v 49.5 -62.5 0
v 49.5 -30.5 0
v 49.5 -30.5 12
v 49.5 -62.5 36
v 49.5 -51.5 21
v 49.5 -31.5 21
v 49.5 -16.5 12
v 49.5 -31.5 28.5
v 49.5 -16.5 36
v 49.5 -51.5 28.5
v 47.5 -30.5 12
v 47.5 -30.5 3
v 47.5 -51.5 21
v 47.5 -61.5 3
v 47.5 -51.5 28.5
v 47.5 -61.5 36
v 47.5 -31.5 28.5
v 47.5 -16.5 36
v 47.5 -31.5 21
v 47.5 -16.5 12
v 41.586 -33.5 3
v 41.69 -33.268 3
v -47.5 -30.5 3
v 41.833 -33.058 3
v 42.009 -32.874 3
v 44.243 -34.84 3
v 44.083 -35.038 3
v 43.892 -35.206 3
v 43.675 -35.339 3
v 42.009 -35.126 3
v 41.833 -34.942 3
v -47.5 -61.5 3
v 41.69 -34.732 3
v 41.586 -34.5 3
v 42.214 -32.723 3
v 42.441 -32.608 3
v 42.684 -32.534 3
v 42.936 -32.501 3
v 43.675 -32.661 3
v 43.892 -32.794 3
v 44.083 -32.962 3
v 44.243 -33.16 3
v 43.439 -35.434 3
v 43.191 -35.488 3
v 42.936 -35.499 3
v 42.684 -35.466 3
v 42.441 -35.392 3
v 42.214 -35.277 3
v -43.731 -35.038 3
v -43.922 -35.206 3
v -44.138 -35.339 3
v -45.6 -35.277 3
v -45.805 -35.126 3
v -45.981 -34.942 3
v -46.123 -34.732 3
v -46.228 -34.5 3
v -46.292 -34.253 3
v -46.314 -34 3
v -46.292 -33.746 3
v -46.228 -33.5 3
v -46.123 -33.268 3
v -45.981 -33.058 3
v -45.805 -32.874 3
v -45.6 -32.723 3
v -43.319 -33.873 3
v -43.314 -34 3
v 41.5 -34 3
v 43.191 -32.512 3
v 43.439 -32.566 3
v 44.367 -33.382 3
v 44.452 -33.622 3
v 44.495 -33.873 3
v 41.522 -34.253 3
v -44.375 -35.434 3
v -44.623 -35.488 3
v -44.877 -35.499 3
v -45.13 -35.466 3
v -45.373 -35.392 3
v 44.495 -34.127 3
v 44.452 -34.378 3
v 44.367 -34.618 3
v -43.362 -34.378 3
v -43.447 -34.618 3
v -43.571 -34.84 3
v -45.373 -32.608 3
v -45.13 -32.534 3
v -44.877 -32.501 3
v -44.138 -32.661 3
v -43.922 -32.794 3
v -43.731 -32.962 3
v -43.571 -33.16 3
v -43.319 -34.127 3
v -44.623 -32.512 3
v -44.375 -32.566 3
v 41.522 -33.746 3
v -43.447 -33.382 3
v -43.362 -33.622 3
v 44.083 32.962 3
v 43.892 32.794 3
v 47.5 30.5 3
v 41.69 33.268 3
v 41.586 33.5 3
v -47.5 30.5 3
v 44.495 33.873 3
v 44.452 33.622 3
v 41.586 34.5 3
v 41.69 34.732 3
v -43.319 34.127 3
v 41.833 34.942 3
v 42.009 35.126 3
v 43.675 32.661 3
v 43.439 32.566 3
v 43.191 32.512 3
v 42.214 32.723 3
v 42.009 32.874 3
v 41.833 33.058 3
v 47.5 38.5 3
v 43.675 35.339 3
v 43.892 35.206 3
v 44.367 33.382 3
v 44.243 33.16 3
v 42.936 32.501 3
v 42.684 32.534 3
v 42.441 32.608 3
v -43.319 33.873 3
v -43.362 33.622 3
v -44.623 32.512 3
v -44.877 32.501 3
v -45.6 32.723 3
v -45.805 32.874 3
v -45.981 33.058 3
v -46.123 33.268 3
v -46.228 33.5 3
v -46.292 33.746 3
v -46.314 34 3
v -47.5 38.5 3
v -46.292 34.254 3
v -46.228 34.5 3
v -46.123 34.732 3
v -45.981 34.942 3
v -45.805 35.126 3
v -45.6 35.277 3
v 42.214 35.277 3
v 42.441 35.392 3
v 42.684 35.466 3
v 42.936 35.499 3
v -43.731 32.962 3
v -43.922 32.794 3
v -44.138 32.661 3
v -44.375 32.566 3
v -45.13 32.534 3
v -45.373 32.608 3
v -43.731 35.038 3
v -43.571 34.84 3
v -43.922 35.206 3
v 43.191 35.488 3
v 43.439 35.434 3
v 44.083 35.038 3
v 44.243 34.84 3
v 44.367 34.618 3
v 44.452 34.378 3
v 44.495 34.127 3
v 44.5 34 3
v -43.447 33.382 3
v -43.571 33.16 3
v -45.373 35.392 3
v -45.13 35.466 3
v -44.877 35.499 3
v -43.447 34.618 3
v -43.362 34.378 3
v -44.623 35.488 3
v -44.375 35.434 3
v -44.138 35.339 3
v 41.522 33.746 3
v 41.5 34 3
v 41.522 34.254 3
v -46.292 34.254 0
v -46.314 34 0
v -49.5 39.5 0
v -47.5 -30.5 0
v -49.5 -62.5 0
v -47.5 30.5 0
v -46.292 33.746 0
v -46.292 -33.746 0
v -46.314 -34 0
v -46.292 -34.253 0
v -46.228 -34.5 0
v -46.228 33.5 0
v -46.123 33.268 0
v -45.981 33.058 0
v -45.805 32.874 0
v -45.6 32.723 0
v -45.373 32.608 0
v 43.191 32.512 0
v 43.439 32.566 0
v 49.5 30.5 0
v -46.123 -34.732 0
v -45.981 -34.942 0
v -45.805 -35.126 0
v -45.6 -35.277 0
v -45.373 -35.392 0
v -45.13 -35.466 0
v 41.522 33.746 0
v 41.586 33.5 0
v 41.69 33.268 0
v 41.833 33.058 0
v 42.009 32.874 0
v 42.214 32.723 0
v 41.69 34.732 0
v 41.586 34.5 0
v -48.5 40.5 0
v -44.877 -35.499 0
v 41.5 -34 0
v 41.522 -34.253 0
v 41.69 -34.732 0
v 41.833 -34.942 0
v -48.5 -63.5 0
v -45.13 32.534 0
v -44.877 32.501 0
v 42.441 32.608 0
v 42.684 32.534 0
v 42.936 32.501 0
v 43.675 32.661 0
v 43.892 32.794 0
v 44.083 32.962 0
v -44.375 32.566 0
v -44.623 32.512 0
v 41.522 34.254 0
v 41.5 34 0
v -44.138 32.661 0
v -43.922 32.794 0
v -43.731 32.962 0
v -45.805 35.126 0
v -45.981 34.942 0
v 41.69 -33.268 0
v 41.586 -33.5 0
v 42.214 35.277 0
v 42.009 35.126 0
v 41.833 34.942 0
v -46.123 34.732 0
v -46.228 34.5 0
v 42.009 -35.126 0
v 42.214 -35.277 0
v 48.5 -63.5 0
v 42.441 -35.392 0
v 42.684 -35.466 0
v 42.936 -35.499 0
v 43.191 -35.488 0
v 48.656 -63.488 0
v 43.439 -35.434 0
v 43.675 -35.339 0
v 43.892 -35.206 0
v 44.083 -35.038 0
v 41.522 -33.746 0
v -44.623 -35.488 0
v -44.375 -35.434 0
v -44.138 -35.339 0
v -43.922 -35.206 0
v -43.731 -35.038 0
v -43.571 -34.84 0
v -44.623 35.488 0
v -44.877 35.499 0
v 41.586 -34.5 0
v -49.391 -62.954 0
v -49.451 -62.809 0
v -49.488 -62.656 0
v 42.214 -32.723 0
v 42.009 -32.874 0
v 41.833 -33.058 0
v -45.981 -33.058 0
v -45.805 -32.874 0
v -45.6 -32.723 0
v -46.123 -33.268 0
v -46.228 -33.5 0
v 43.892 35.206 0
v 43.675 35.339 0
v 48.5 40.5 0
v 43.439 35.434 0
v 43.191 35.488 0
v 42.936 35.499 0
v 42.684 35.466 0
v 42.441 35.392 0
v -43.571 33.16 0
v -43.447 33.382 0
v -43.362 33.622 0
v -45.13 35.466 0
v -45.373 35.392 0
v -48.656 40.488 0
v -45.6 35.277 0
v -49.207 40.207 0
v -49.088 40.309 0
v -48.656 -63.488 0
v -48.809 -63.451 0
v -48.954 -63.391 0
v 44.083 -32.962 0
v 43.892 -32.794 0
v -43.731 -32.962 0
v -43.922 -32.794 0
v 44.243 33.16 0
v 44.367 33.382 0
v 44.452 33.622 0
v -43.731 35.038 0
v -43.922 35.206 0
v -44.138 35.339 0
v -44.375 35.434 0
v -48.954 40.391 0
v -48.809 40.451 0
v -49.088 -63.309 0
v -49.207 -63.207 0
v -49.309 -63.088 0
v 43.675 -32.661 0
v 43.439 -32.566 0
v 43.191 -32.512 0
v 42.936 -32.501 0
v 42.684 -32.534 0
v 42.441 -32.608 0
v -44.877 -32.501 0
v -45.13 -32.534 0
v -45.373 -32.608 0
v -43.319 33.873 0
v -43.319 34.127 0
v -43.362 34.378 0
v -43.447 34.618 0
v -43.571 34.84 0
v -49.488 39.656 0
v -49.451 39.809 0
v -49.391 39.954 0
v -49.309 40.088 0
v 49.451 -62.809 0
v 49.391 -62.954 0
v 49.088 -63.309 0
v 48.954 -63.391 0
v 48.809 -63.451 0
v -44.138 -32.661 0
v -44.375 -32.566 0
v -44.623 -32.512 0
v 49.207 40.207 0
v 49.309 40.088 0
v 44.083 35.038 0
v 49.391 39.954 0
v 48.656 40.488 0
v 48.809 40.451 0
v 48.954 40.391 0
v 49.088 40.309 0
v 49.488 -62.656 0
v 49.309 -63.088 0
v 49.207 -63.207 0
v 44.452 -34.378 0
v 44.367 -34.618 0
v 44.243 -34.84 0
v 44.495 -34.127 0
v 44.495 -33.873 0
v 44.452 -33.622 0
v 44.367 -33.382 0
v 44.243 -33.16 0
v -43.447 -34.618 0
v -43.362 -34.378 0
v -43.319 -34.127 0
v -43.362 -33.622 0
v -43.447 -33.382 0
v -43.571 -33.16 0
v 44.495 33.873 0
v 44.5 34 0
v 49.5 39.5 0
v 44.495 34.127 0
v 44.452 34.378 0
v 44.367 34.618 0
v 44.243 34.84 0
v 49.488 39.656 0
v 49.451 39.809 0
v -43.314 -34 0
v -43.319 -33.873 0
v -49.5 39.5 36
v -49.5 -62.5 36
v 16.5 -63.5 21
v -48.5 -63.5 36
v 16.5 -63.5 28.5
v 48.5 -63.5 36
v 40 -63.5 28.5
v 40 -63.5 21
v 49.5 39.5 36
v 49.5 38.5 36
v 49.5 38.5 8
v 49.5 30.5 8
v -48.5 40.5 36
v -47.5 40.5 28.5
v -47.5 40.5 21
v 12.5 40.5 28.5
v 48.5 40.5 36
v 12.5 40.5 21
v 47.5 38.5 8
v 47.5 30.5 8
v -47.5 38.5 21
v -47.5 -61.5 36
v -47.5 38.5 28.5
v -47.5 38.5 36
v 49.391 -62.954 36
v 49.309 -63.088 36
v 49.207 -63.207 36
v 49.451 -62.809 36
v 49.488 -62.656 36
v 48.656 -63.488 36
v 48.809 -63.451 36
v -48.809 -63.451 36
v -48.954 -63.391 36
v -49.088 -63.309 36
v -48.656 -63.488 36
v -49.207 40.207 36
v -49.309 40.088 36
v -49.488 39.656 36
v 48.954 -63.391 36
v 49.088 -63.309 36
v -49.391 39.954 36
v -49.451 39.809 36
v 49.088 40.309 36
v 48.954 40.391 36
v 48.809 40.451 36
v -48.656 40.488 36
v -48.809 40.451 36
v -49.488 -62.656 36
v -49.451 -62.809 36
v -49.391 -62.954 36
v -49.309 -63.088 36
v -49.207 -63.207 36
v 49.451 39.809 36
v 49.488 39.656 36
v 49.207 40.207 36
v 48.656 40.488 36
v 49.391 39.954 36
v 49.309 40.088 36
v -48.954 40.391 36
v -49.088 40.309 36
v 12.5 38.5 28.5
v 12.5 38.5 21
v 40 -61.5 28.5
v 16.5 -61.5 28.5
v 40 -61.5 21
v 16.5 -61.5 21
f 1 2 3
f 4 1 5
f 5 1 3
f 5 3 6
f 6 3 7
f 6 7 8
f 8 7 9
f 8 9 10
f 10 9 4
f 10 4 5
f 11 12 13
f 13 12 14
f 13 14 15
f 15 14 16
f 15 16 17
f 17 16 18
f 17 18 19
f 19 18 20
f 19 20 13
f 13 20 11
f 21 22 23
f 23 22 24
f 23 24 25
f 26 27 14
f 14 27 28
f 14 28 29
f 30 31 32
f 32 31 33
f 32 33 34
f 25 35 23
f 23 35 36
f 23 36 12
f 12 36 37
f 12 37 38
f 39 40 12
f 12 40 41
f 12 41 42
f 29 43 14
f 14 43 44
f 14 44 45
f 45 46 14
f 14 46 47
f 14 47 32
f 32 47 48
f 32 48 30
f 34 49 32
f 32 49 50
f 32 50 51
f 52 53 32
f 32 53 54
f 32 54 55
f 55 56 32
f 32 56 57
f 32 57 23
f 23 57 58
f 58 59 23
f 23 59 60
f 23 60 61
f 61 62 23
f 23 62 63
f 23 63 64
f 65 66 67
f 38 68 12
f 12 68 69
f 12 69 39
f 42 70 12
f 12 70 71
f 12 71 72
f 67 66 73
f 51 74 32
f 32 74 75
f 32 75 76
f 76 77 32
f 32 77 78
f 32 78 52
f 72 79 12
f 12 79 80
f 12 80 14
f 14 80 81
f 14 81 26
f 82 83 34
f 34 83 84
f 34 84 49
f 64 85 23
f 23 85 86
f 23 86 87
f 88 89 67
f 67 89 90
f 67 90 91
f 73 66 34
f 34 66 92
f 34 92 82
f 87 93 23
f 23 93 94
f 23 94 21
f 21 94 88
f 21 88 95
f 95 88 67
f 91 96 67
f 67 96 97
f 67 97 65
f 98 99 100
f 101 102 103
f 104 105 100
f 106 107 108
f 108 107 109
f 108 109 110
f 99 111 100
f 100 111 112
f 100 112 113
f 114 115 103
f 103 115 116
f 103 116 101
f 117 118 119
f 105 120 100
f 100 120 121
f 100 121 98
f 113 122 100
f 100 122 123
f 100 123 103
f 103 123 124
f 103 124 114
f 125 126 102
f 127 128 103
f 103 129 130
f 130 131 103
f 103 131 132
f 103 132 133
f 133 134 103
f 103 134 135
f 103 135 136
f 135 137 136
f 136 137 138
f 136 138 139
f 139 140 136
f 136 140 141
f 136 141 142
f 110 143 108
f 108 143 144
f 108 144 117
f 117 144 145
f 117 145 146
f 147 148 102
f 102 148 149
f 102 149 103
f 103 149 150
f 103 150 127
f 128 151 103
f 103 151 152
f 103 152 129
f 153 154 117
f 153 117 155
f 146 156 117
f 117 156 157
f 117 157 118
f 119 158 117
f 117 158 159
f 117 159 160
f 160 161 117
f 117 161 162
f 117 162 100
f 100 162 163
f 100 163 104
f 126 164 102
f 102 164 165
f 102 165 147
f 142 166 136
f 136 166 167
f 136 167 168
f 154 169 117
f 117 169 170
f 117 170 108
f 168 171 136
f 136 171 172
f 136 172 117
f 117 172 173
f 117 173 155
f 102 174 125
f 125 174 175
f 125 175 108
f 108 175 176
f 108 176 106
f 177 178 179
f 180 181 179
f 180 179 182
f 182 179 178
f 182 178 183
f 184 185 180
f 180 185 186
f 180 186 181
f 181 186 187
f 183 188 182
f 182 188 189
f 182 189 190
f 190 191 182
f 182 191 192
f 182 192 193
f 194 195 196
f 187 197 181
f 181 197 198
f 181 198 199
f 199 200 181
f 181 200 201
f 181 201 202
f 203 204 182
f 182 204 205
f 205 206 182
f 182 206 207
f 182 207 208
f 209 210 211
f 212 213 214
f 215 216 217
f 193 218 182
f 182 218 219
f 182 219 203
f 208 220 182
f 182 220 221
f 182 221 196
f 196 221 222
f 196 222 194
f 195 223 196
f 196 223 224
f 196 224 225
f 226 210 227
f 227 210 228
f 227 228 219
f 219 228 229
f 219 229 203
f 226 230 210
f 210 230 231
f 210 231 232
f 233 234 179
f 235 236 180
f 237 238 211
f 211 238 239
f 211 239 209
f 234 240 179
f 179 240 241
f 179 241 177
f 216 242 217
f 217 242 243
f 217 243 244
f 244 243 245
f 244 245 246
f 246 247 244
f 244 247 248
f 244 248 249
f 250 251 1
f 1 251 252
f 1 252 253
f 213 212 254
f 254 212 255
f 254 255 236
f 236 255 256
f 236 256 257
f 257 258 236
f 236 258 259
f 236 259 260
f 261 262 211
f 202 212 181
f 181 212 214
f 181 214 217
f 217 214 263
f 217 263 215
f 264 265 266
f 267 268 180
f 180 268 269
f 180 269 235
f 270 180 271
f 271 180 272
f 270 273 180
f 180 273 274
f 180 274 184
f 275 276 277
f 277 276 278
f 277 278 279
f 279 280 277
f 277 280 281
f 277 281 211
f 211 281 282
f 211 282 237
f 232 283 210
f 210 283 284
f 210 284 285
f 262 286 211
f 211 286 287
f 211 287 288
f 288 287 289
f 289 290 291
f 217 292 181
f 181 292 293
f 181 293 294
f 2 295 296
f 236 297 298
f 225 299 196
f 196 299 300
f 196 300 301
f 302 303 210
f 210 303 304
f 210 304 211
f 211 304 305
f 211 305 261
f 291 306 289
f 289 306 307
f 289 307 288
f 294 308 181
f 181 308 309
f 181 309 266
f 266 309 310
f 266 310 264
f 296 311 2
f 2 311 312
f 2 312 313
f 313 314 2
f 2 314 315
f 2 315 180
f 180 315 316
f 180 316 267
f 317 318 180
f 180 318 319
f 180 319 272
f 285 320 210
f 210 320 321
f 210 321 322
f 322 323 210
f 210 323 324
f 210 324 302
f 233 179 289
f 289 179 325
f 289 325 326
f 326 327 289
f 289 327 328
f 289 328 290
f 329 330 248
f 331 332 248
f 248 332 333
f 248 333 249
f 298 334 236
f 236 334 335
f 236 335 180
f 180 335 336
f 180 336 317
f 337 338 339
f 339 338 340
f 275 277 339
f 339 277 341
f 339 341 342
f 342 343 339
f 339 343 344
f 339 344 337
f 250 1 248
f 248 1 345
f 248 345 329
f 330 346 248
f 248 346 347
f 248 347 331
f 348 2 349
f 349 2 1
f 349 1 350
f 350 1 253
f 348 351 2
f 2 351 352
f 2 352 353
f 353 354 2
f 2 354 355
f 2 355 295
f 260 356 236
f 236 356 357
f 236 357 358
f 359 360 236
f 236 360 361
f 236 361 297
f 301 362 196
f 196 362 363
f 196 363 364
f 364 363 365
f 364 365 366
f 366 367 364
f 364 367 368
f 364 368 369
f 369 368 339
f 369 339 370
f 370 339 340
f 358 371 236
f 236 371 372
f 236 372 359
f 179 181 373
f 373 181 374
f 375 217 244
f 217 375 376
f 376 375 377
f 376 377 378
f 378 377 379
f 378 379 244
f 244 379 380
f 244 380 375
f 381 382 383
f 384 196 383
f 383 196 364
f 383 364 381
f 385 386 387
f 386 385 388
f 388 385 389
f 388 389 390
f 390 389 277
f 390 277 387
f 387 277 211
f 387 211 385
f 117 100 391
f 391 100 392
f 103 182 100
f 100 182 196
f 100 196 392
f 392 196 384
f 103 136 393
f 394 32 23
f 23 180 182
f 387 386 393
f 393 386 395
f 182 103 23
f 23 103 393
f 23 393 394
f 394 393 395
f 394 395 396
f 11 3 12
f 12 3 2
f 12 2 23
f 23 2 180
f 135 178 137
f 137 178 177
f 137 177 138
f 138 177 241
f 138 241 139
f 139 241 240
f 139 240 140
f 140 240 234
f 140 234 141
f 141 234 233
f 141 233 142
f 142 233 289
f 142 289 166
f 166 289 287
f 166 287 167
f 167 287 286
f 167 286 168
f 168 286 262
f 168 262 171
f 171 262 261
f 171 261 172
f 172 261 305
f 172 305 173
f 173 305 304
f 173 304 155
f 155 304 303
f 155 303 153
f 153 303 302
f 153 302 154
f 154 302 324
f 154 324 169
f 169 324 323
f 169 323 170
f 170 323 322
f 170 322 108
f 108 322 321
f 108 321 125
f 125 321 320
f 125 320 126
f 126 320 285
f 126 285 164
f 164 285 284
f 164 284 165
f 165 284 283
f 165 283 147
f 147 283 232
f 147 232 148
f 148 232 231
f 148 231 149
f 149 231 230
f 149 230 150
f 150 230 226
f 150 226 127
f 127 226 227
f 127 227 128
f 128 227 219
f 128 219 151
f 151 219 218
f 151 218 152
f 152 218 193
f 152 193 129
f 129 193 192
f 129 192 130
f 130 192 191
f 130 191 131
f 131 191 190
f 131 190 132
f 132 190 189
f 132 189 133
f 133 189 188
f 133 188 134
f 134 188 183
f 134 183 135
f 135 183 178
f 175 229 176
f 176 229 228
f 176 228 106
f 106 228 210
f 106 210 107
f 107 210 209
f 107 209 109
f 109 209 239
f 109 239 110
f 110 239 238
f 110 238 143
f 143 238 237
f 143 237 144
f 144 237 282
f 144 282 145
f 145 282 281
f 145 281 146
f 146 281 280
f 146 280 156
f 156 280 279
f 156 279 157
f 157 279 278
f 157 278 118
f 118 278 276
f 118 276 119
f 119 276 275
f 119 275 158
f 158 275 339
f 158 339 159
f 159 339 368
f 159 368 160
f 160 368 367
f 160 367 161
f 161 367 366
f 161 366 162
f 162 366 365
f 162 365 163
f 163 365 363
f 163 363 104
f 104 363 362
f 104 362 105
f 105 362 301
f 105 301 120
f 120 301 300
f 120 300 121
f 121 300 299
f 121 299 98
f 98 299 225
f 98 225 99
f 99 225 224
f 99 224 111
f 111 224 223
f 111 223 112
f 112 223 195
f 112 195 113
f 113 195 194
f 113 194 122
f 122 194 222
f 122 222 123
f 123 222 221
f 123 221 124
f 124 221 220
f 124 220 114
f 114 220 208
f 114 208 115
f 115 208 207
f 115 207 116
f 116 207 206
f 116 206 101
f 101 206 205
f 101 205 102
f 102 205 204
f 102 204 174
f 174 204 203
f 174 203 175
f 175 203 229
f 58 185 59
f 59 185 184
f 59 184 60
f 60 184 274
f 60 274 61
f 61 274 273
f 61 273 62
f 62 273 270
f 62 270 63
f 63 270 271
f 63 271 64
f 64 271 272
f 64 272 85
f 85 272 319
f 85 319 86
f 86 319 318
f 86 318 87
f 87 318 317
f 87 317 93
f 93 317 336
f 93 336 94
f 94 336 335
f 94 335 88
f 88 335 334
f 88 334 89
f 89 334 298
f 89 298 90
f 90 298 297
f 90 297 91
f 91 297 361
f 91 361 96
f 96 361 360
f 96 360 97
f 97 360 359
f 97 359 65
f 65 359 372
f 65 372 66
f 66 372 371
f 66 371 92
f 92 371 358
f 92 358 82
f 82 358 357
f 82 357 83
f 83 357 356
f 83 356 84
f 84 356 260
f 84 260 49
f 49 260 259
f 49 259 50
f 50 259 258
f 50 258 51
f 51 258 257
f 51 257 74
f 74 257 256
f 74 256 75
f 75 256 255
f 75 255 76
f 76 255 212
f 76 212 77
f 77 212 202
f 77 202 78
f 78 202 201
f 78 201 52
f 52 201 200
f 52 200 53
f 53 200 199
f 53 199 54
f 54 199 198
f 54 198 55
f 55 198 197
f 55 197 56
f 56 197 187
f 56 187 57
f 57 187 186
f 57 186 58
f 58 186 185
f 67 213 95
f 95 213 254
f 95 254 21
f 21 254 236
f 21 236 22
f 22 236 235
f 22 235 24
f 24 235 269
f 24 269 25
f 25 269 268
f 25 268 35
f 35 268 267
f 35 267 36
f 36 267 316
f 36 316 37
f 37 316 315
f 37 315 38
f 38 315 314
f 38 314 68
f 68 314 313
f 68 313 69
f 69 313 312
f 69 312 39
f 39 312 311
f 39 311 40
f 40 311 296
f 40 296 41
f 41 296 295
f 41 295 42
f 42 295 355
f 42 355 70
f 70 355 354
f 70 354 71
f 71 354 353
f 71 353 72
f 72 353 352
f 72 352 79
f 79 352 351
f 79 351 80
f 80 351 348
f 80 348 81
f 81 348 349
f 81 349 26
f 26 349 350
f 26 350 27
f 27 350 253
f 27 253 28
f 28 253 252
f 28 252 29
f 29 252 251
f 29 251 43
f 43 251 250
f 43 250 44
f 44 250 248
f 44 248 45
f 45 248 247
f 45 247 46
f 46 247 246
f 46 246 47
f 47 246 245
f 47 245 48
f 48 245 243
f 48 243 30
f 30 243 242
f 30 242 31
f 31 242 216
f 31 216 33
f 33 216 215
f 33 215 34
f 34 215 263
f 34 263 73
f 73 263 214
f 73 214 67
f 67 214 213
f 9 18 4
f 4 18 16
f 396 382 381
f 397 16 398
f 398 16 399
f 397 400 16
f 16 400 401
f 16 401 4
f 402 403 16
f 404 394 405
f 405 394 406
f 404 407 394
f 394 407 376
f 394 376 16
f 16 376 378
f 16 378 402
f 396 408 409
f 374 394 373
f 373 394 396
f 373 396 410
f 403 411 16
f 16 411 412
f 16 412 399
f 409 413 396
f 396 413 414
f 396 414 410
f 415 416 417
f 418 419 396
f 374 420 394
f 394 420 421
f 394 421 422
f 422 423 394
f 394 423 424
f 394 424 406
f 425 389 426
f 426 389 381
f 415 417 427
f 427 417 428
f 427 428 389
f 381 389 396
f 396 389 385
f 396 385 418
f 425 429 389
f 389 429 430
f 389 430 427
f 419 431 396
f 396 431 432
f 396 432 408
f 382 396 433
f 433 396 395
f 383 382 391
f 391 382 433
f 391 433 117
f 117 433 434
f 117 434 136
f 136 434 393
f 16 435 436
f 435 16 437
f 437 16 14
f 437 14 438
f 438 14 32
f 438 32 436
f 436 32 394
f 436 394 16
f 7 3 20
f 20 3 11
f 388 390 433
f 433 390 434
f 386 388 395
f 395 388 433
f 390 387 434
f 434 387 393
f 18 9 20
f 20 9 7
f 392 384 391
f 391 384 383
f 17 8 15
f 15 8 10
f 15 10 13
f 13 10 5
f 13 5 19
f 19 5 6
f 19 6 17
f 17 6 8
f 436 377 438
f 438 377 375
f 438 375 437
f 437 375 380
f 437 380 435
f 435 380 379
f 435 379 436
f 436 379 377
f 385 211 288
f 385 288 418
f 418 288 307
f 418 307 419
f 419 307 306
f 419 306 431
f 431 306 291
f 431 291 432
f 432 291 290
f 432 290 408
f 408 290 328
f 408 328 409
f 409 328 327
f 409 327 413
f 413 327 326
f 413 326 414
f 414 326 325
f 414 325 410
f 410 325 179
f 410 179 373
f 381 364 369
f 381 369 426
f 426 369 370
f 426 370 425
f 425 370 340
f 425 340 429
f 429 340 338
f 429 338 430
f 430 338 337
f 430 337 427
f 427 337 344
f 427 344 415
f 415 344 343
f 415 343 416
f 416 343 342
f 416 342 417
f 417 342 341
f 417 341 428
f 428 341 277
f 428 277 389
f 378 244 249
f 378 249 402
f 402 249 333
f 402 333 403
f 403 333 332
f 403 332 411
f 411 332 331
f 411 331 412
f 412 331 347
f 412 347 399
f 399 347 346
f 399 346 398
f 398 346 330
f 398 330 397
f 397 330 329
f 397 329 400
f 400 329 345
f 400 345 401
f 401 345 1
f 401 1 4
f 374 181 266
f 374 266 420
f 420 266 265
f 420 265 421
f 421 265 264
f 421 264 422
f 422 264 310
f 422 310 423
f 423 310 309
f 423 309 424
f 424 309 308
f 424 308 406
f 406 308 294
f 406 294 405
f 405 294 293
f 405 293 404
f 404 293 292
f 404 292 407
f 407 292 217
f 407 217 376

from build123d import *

# Parameters (mm, degrees)
SKETCH_1_W          = 99
SKETCH_1_H          = 104
SKETCH_1_R          = 1.5
SKETCH_1_W_2        = 95
SKETCH_1_H_2        = 61
EXTRUDE_3_DEPTH     = 3
SKETCH_3_W          = 99
SKETCH_3_H          = 104
SKETCH_3_W_2        = 95
SKETCH_3_H_2        = 100
EXTRUDE_4_DEPTH     = 33
CUT_EXTRUDE_2_DEPTH = 30
SKETCH_5_W          = 60
SKETCH_5_H          = 7.5
CUT_EXTRUDE_3_DEPTH = 30
SKETCH_6_W          = 28
SKETCH_6_H          = 55
CUT_EXTRUDE_4_DEPTH = 30
SKETCH_7_W          = 7.5
SKETCH_7_H          = 20
CUT_EXTRUDE_5_DEPTH = 30
SKETCH_8_W          = 23.5
SKETCH_8_H          = 7.5
CUT_EXTRUDE_6_DEPTH = 30
FILLET_1_R          = 1


with BuildPart() as part:
    # 草图1 → 凸台-拉伸3 (new body)
    with BuildSketch(Plane.XY):
        with Locations((0, -11.5)):
            Rectangle(SKETCH_1_W, SKETCH_1_H)
        with Locations((43, 34)):
            Circle(SKETCH_1_R, mode=Mode.SUBTRACT)
        with Locations(Location((-44.813801575, 34, 0), (0, 0, 180))):
            Circle(SKETCH_1_R, mode=Mode.SUBTRACT)
        with Locations((-44.813801575, -34)):
            Circle(SKETCH_1_R, mode=Mode.SUBTRACT)
        with Locations(Location((43, -34, 0), (0, 0, 180))):
            Circle(SKETCH_1_R, mode=Mode.SUBTRACT)
        Rectangle(SKETCH_1_W_2, SKETCH_1_H_2, mode=Mode.SUBTRACT)
    extrude(amount=EXTRUDE_3_DEPTH)

    # 草图3 → 凸台-拉伸4 (add)
    with BuildSketch(Plane.XY.offset(3)):
        with Locations((0, -11.5)):
            Rectangle(SKETCH_3_W, SKETCH_3_H)
        with Locations((0, -11.5)):
            Rectangle(SKETCH_3_W_2, SKETCH_3_H_2, mode=Mode.SUBTRACT)
    extrude(amount=EXTRUDE_4_DEPTH)

    # 草图4 → 切除-拉伸2 (cut)
    with BuildSketch(Plane.ZY.offset(-47.5)):
        Polygon((3, 30.5), (12, 30.5), (12, -30.5), (3, -30.5), (0, -30.5), (0, 30.5), align=None)
    extrude(amount=-CUT_EXTRUDE_2_DEPTH, mode=Mode.SUBTRACT)

    # 草图5 → 切除-拉伸3 (cut)
    with BuildSketch(Plane(origin=(0, 40.5, 0), x_dir=(1, 0, 0), z_dir=(0, 1, 0))):
        with Locations((-17.5, -24.75)):
            Rectangle(SKETCH_5_W, SKETCH_5_H)
    extrude(amount=-CUT_EXTRUDE_3_DEPTH, mode=Mode.SUBTRACT)

    # 草图6 → 切除-拉伸4 (cut)
    with BuildSketch(Plane.ZY.offset(-47.5)):
        with Locations((22, 11)):
            Rectangle(SKETCH_6_W, SKETCH_6_H)
    extrude(amount=-CUT_EXTRUDE_4_DEPTH, mode=Mode.SUBTRACT)

    # 草图7 → 切除-拉伸5 (cut)
    with BuildSketch(Plane.ZY.offset(-47.5)):
        with Locations((24.75, -41.5)):
            Rectangle(SKETCH_7_W, SKETCH_7_H)
    extrude(amount=-CUT_EXTRUDE_5_DEPTH, mode=Mode.SUBTRACT)

    # 草图8 → 切除-拉伸6 (cut)
    with BuildSketch(Plane(origin=(0, -61.5, 0), x_dir=(1, 0, 0), z_dir=(0, 1, 0))):
        with Locations((28.25, -24.75)):
            Rectangle(SKETCH_8_W, SKETCH_8_H)
    extrude(amount=-CUT_EXTRUDE_6_DEPTH, mode=Mode.SUBTRACT)

    # 圆角1
    fillet_1_edges = [part.edges().sort_by_distance(p)[0] for p in [
        (-49.5, 40.5, 18),
        (49.5, 40.5, 18),
        (49.5, -63.5, 18),
        (-49.5, -63.5, 18),
    ]]
    fillet(fillet_1_edges, radius=FILLET_1_R)


solid = part.part
